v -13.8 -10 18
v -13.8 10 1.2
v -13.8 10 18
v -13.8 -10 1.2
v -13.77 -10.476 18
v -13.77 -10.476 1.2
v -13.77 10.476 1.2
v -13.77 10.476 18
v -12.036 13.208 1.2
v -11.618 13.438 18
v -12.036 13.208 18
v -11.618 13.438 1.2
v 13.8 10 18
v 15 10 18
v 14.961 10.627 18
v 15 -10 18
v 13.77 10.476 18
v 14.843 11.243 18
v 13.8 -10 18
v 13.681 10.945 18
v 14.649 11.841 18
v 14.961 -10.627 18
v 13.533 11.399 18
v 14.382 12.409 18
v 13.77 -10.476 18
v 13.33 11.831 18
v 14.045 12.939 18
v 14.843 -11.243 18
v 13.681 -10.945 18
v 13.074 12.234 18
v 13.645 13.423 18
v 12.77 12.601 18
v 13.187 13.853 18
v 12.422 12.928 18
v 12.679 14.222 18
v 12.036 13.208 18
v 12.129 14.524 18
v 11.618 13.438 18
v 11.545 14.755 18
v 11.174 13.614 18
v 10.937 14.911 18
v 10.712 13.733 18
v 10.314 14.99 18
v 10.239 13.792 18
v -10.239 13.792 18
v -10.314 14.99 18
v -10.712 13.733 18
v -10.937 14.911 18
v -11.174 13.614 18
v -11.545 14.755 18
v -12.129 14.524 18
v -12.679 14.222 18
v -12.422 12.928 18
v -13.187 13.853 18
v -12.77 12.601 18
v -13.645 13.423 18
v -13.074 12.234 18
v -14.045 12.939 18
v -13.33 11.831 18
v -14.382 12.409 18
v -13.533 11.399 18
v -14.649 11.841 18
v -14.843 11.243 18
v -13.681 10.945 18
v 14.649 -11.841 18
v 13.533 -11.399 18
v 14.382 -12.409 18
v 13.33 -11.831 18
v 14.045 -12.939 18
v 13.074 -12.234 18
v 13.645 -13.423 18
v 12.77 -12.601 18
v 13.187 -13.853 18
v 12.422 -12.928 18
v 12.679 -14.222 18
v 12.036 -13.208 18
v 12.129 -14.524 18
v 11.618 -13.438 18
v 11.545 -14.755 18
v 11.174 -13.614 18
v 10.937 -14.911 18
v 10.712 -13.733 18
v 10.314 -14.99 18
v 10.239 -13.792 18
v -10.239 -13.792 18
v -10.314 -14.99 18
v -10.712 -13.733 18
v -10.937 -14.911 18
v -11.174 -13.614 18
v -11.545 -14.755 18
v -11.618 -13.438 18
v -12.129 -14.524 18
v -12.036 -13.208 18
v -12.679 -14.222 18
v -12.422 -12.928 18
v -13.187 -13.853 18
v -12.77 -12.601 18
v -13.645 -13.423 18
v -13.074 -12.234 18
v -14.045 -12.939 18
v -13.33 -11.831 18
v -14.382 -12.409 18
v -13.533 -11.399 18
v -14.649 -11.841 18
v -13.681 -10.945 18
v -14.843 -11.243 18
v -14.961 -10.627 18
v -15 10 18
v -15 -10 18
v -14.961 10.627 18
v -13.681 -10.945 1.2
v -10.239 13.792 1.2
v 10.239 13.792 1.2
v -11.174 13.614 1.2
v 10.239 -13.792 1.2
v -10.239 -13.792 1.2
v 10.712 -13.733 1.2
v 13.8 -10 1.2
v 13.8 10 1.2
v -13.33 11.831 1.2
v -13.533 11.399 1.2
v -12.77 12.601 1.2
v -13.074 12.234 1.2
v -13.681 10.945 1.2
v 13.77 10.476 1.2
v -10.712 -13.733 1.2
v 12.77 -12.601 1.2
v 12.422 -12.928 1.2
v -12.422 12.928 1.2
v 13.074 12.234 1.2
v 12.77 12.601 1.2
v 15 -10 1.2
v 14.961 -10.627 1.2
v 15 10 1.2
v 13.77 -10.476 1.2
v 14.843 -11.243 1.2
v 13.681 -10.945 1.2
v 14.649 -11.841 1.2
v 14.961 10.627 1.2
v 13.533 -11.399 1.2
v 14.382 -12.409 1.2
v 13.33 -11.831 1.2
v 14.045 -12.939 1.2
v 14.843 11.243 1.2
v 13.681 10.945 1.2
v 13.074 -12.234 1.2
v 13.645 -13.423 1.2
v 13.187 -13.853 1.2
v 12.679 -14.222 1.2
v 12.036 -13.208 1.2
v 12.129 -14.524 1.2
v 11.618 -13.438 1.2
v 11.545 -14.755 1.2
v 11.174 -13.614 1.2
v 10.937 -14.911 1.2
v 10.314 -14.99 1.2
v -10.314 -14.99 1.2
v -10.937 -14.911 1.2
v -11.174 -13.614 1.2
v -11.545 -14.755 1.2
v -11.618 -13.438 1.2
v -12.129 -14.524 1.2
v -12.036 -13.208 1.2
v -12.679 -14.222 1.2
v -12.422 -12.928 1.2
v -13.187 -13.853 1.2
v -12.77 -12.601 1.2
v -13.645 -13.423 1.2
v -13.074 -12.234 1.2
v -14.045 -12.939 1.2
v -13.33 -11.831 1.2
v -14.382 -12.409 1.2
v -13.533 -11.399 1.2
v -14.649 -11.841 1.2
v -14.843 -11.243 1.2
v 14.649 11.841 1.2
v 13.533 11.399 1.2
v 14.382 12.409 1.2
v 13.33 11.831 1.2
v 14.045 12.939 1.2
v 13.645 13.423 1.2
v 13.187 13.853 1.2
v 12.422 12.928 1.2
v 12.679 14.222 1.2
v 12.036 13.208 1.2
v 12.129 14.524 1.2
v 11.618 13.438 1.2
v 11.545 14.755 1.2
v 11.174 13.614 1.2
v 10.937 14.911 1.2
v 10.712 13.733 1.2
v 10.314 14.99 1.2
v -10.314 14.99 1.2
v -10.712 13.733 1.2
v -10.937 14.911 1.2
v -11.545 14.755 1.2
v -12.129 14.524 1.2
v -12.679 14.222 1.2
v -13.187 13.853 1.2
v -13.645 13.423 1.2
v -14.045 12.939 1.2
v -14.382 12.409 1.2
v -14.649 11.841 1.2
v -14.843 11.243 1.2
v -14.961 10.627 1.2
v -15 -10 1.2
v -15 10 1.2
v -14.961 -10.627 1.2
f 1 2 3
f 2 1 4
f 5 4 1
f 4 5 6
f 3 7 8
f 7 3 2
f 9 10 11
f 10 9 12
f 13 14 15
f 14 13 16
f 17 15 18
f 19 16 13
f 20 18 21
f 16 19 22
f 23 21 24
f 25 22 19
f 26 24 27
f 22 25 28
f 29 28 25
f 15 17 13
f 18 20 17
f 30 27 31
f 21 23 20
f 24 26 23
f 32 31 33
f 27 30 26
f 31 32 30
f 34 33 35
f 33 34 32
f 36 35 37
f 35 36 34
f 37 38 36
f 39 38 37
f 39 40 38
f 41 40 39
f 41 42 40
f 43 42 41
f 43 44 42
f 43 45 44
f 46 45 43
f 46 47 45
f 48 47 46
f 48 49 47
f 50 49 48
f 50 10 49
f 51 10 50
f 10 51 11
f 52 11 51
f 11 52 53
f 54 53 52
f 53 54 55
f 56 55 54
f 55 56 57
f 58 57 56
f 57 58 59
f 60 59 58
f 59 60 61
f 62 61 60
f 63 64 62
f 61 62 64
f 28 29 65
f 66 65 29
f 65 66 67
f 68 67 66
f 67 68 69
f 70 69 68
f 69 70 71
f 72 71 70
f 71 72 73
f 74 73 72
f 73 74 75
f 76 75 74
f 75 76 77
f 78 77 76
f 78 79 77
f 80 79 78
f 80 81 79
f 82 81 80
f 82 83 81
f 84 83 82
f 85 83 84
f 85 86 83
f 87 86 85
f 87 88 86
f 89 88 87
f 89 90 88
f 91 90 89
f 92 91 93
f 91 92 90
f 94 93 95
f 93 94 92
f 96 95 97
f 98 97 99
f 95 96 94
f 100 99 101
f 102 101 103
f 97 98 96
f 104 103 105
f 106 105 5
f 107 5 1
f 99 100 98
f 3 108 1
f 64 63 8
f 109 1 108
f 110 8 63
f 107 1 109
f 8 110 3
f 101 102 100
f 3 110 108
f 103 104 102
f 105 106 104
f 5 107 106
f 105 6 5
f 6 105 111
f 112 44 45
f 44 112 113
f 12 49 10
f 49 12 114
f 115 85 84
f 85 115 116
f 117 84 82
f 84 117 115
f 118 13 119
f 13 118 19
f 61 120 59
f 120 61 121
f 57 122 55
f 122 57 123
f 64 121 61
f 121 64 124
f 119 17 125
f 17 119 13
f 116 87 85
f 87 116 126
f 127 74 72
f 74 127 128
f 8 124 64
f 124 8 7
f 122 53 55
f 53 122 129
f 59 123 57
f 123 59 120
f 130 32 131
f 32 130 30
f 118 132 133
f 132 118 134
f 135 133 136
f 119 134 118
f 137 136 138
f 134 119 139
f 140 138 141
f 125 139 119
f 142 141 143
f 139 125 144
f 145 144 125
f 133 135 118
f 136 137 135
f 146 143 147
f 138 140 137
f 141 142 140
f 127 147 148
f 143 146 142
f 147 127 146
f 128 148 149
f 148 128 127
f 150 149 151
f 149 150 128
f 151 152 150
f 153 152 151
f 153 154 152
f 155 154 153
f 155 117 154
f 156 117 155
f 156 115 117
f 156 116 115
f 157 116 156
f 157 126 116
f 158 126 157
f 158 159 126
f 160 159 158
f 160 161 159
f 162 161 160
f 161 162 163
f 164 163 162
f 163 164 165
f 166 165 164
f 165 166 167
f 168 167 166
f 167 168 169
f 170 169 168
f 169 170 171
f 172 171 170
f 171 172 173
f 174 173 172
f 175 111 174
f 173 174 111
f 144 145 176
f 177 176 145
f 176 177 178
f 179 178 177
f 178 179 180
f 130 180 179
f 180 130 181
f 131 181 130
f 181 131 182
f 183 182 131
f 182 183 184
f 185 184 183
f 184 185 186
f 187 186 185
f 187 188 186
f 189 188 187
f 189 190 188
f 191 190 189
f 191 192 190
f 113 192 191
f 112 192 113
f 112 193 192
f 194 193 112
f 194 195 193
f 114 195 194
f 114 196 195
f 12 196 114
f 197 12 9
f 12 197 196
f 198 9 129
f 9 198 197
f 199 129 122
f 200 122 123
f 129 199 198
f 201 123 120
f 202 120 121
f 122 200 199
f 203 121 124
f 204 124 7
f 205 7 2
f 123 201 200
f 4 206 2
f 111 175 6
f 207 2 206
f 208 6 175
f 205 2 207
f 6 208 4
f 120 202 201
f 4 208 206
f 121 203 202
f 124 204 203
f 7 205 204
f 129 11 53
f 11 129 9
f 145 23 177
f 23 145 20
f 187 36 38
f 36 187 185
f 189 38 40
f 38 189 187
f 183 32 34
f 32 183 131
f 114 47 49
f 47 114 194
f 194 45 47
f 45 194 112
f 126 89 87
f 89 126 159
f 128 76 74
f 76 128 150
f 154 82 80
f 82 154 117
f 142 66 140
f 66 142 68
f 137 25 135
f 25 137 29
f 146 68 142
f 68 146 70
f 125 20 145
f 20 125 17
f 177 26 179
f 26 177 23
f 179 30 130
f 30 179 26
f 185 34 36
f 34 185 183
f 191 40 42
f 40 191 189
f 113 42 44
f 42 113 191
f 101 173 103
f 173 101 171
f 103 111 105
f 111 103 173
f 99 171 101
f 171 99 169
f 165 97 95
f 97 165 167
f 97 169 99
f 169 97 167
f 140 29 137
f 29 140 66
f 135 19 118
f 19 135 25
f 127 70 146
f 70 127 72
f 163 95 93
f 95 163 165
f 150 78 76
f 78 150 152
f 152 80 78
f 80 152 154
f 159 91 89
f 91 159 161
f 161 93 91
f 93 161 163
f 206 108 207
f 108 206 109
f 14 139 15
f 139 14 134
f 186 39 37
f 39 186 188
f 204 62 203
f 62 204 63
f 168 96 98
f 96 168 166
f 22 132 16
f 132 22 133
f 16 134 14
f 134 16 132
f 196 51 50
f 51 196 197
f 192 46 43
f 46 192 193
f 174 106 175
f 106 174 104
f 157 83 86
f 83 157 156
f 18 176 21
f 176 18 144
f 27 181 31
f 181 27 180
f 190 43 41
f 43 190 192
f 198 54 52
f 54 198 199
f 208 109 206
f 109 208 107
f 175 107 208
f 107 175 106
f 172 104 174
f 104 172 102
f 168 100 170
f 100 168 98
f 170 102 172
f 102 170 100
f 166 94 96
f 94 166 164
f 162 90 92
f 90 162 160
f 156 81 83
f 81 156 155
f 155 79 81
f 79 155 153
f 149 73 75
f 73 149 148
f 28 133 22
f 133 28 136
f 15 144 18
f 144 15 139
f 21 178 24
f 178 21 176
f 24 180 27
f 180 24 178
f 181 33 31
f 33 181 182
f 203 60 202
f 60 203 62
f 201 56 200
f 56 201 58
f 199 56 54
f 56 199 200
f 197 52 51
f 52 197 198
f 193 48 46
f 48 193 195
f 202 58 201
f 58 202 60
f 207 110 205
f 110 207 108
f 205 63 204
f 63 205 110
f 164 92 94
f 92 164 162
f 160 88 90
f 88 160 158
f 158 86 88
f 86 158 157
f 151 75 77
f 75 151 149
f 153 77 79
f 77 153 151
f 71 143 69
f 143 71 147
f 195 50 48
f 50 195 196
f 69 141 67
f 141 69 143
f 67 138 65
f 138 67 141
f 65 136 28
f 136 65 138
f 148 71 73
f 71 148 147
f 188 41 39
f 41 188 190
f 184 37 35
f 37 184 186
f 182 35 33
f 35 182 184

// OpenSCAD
$fn = 50;


difference() {
	union() {
		hull() {
			translate(v = [-10.0000000000, 10.0000000000, 0]) {
				cylinder(h = 18, r = 5);
			}
			translate(v = [10.0000000000, 10.0000000000, 0]) {
				cylinder(h = 18, r = 5);
			}
			translate(v = [-10.0000000000, -10.0000000000, 0]) {
				cylinder(h = 18, r = 5);
			}
			translate(v = [10.0000000000, -10.0000000000, 0]) {
				cylinder(h = 18, r = 5);
			}
		}
	}
	union() {
		translate(v = [0, 0, 1.2000000000]) {
			hull() {
				translate(v = [-10.0000000000, 10.0000000000, 0]) {
					cylinder(h = 16.8000000000, r = 3.8000000000);
				}
				translate(v = [10.0000000000, 10.0000000000, 0]) {
					cylinder(h = 16.8000000000, r = 3.8000000000);
				}
				translate(v = [-10.0000000000, -10.0000000000, 0]) {
					cylinder(h = 16.8000000000, r = 3.8000000000);
				}
				translate(v = [10.0000000000, -10.0000000000, 0]) {
					cylinder(h = 16.8000000000, r = 3.8000000000);
				}
			}
		}
		#cylinder(h = 1.2000000000, r = 1.8000000000);
		translate(v = [-250.0000000000, -250.0000000000, -498.8000000000]) {
			cube(size = [500, 500, 500]);
		}
		translate(v = [-250.0000000000, -250.0000000000, -498.8000000000]) {
			cube(size = [500, 500, 500]);
		}
		translate(v = [-250.0000000000, -250.0000000000, -498.8000000000]) {
			cube(size = [500, 500, 500]);
		}
	}
}
